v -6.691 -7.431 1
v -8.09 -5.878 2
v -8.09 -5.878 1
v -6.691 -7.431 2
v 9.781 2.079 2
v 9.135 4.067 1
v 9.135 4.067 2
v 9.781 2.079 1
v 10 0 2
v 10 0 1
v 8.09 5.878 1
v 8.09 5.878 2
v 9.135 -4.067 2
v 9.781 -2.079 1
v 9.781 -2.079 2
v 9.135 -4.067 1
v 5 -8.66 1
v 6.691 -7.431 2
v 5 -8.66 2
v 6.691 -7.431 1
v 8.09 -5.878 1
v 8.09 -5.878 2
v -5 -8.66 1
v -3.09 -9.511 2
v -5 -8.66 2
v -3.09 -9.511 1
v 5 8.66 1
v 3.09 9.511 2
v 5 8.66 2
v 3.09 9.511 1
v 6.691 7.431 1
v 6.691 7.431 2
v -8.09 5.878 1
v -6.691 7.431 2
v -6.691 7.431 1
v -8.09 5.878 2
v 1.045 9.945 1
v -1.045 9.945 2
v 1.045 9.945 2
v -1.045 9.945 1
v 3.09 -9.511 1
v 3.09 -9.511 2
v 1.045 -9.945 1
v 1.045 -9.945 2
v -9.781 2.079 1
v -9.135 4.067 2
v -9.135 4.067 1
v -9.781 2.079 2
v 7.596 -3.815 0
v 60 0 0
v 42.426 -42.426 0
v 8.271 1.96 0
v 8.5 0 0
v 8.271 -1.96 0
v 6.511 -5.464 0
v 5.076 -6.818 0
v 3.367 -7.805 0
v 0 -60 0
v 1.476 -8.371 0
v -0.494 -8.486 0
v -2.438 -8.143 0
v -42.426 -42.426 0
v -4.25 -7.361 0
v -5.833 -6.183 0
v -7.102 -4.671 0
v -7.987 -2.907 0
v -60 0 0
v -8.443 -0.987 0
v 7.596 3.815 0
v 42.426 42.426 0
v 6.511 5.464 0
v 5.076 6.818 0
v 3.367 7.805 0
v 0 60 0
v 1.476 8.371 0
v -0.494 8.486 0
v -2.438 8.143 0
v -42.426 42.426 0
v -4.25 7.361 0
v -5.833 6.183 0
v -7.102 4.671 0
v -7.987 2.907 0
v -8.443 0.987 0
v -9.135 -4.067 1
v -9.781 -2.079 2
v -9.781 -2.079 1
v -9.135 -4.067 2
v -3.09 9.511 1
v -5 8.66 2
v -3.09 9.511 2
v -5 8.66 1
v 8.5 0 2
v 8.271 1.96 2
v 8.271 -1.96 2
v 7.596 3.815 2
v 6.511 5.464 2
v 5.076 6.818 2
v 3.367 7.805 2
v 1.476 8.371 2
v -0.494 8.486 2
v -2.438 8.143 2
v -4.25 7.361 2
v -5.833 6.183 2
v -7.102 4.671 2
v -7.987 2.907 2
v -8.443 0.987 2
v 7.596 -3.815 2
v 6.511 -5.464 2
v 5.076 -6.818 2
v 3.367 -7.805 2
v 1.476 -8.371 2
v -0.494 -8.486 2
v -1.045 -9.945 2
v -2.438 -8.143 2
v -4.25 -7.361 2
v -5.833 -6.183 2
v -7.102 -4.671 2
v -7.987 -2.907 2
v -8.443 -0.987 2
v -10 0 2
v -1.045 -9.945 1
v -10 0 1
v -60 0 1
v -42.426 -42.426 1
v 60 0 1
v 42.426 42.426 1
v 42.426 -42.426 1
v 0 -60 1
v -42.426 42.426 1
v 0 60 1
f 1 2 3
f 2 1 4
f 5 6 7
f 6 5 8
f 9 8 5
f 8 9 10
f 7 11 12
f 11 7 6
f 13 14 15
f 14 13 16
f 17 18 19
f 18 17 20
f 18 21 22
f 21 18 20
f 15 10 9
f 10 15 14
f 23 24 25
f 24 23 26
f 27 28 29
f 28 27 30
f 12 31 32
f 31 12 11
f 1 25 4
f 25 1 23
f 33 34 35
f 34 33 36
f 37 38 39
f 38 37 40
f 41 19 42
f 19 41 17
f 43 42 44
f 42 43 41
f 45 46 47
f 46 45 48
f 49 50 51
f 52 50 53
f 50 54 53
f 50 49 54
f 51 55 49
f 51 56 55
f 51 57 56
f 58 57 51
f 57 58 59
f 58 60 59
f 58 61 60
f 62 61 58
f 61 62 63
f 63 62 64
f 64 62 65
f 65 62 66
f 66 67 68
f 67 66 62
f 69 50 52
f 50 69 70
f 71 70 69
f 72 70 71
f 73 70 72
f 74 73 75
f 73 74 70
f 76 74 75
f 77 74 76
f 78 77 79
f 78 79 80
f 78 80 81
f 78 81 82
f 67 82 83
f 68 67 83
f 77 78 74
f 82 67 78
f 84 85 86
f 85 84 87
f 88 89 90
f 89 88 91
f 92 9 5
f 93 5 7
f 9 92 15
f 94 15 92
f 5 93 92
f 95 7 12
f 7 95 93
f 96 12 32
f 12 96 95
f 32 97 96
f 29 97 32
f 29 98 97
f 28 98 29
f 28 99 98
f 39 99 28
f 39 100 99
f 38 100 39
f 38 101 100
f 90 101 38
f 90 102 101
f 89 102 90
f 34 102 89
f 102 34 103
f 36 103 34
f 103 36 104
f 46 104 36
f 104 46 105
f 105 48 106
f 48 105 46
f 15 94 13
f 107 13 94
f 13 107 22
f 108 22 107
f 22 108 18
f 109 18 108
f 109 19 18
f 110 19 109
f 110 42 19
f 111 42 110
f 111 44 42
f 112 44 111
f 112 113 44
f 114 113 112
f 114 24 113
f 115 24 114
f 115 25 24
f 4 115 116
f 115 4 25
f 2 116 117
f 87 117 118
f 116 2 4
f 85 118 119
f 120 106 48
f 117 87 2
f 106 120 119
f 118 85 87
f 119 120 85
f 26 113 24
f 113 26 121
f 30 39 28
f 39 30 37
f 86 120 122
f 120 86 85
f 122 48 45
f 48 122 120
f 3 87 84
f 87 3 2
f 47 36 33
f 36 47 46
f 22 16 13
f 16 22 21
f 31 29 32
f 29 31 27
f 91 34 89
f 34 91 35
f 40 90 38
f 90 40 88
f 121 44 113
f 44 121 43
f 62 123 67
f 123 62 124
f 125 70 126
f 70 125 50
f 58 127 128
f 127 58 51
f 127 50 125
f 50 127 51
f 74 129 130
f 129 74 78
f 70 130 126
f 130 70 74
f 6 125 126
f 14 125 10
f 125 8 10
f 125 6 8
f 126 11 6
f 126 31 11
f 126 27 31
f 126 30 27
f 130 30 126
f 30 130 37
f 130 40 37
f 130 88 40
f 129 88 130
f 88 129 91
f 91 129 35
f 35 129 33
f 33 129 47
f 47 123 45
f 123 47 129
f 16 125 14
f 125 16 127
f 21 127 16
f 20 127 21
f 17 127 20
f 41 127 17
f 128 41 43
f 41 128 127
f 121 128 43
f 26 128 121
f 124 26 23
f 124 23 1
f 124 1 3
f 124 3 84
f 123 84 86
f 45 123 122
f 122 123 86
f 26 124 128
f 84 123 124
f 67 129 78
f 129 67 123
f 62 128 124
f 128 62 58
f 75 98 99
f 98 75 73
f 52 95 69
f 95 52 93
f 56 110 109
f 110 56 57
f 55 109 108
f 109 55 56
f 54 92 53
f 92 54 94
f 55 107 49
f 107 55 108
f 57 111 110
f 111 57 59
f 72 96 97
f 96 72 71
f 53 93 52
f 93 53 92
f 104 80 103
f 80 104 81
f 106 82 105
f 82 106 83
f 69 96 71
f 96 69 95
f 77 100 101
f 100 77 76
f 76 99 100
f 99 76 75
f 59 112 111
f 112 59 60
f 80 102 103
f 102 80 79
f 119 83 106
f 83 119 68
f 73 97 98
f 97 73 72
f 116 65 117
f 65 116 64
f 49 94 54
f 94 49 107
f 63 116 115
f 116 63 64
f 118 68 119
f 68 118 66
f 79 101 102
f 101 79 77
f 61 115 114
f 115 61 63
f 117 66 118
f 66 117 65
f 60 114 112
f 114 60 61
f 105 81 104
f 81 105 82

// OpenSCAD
difference(){
    union(){
            
        translate([0, 0, 1])
        cylinder(h=2, r=20/2, center=true);
        linear_extrude(1){
            rad = 60;
            polygon([for(i = [1:1:8]) [rad*cos(i*360/8), rad*sin(i*360/8)]]);
        }
    }
    
    cylinder(h=8, r=17/2, center=true);
}
